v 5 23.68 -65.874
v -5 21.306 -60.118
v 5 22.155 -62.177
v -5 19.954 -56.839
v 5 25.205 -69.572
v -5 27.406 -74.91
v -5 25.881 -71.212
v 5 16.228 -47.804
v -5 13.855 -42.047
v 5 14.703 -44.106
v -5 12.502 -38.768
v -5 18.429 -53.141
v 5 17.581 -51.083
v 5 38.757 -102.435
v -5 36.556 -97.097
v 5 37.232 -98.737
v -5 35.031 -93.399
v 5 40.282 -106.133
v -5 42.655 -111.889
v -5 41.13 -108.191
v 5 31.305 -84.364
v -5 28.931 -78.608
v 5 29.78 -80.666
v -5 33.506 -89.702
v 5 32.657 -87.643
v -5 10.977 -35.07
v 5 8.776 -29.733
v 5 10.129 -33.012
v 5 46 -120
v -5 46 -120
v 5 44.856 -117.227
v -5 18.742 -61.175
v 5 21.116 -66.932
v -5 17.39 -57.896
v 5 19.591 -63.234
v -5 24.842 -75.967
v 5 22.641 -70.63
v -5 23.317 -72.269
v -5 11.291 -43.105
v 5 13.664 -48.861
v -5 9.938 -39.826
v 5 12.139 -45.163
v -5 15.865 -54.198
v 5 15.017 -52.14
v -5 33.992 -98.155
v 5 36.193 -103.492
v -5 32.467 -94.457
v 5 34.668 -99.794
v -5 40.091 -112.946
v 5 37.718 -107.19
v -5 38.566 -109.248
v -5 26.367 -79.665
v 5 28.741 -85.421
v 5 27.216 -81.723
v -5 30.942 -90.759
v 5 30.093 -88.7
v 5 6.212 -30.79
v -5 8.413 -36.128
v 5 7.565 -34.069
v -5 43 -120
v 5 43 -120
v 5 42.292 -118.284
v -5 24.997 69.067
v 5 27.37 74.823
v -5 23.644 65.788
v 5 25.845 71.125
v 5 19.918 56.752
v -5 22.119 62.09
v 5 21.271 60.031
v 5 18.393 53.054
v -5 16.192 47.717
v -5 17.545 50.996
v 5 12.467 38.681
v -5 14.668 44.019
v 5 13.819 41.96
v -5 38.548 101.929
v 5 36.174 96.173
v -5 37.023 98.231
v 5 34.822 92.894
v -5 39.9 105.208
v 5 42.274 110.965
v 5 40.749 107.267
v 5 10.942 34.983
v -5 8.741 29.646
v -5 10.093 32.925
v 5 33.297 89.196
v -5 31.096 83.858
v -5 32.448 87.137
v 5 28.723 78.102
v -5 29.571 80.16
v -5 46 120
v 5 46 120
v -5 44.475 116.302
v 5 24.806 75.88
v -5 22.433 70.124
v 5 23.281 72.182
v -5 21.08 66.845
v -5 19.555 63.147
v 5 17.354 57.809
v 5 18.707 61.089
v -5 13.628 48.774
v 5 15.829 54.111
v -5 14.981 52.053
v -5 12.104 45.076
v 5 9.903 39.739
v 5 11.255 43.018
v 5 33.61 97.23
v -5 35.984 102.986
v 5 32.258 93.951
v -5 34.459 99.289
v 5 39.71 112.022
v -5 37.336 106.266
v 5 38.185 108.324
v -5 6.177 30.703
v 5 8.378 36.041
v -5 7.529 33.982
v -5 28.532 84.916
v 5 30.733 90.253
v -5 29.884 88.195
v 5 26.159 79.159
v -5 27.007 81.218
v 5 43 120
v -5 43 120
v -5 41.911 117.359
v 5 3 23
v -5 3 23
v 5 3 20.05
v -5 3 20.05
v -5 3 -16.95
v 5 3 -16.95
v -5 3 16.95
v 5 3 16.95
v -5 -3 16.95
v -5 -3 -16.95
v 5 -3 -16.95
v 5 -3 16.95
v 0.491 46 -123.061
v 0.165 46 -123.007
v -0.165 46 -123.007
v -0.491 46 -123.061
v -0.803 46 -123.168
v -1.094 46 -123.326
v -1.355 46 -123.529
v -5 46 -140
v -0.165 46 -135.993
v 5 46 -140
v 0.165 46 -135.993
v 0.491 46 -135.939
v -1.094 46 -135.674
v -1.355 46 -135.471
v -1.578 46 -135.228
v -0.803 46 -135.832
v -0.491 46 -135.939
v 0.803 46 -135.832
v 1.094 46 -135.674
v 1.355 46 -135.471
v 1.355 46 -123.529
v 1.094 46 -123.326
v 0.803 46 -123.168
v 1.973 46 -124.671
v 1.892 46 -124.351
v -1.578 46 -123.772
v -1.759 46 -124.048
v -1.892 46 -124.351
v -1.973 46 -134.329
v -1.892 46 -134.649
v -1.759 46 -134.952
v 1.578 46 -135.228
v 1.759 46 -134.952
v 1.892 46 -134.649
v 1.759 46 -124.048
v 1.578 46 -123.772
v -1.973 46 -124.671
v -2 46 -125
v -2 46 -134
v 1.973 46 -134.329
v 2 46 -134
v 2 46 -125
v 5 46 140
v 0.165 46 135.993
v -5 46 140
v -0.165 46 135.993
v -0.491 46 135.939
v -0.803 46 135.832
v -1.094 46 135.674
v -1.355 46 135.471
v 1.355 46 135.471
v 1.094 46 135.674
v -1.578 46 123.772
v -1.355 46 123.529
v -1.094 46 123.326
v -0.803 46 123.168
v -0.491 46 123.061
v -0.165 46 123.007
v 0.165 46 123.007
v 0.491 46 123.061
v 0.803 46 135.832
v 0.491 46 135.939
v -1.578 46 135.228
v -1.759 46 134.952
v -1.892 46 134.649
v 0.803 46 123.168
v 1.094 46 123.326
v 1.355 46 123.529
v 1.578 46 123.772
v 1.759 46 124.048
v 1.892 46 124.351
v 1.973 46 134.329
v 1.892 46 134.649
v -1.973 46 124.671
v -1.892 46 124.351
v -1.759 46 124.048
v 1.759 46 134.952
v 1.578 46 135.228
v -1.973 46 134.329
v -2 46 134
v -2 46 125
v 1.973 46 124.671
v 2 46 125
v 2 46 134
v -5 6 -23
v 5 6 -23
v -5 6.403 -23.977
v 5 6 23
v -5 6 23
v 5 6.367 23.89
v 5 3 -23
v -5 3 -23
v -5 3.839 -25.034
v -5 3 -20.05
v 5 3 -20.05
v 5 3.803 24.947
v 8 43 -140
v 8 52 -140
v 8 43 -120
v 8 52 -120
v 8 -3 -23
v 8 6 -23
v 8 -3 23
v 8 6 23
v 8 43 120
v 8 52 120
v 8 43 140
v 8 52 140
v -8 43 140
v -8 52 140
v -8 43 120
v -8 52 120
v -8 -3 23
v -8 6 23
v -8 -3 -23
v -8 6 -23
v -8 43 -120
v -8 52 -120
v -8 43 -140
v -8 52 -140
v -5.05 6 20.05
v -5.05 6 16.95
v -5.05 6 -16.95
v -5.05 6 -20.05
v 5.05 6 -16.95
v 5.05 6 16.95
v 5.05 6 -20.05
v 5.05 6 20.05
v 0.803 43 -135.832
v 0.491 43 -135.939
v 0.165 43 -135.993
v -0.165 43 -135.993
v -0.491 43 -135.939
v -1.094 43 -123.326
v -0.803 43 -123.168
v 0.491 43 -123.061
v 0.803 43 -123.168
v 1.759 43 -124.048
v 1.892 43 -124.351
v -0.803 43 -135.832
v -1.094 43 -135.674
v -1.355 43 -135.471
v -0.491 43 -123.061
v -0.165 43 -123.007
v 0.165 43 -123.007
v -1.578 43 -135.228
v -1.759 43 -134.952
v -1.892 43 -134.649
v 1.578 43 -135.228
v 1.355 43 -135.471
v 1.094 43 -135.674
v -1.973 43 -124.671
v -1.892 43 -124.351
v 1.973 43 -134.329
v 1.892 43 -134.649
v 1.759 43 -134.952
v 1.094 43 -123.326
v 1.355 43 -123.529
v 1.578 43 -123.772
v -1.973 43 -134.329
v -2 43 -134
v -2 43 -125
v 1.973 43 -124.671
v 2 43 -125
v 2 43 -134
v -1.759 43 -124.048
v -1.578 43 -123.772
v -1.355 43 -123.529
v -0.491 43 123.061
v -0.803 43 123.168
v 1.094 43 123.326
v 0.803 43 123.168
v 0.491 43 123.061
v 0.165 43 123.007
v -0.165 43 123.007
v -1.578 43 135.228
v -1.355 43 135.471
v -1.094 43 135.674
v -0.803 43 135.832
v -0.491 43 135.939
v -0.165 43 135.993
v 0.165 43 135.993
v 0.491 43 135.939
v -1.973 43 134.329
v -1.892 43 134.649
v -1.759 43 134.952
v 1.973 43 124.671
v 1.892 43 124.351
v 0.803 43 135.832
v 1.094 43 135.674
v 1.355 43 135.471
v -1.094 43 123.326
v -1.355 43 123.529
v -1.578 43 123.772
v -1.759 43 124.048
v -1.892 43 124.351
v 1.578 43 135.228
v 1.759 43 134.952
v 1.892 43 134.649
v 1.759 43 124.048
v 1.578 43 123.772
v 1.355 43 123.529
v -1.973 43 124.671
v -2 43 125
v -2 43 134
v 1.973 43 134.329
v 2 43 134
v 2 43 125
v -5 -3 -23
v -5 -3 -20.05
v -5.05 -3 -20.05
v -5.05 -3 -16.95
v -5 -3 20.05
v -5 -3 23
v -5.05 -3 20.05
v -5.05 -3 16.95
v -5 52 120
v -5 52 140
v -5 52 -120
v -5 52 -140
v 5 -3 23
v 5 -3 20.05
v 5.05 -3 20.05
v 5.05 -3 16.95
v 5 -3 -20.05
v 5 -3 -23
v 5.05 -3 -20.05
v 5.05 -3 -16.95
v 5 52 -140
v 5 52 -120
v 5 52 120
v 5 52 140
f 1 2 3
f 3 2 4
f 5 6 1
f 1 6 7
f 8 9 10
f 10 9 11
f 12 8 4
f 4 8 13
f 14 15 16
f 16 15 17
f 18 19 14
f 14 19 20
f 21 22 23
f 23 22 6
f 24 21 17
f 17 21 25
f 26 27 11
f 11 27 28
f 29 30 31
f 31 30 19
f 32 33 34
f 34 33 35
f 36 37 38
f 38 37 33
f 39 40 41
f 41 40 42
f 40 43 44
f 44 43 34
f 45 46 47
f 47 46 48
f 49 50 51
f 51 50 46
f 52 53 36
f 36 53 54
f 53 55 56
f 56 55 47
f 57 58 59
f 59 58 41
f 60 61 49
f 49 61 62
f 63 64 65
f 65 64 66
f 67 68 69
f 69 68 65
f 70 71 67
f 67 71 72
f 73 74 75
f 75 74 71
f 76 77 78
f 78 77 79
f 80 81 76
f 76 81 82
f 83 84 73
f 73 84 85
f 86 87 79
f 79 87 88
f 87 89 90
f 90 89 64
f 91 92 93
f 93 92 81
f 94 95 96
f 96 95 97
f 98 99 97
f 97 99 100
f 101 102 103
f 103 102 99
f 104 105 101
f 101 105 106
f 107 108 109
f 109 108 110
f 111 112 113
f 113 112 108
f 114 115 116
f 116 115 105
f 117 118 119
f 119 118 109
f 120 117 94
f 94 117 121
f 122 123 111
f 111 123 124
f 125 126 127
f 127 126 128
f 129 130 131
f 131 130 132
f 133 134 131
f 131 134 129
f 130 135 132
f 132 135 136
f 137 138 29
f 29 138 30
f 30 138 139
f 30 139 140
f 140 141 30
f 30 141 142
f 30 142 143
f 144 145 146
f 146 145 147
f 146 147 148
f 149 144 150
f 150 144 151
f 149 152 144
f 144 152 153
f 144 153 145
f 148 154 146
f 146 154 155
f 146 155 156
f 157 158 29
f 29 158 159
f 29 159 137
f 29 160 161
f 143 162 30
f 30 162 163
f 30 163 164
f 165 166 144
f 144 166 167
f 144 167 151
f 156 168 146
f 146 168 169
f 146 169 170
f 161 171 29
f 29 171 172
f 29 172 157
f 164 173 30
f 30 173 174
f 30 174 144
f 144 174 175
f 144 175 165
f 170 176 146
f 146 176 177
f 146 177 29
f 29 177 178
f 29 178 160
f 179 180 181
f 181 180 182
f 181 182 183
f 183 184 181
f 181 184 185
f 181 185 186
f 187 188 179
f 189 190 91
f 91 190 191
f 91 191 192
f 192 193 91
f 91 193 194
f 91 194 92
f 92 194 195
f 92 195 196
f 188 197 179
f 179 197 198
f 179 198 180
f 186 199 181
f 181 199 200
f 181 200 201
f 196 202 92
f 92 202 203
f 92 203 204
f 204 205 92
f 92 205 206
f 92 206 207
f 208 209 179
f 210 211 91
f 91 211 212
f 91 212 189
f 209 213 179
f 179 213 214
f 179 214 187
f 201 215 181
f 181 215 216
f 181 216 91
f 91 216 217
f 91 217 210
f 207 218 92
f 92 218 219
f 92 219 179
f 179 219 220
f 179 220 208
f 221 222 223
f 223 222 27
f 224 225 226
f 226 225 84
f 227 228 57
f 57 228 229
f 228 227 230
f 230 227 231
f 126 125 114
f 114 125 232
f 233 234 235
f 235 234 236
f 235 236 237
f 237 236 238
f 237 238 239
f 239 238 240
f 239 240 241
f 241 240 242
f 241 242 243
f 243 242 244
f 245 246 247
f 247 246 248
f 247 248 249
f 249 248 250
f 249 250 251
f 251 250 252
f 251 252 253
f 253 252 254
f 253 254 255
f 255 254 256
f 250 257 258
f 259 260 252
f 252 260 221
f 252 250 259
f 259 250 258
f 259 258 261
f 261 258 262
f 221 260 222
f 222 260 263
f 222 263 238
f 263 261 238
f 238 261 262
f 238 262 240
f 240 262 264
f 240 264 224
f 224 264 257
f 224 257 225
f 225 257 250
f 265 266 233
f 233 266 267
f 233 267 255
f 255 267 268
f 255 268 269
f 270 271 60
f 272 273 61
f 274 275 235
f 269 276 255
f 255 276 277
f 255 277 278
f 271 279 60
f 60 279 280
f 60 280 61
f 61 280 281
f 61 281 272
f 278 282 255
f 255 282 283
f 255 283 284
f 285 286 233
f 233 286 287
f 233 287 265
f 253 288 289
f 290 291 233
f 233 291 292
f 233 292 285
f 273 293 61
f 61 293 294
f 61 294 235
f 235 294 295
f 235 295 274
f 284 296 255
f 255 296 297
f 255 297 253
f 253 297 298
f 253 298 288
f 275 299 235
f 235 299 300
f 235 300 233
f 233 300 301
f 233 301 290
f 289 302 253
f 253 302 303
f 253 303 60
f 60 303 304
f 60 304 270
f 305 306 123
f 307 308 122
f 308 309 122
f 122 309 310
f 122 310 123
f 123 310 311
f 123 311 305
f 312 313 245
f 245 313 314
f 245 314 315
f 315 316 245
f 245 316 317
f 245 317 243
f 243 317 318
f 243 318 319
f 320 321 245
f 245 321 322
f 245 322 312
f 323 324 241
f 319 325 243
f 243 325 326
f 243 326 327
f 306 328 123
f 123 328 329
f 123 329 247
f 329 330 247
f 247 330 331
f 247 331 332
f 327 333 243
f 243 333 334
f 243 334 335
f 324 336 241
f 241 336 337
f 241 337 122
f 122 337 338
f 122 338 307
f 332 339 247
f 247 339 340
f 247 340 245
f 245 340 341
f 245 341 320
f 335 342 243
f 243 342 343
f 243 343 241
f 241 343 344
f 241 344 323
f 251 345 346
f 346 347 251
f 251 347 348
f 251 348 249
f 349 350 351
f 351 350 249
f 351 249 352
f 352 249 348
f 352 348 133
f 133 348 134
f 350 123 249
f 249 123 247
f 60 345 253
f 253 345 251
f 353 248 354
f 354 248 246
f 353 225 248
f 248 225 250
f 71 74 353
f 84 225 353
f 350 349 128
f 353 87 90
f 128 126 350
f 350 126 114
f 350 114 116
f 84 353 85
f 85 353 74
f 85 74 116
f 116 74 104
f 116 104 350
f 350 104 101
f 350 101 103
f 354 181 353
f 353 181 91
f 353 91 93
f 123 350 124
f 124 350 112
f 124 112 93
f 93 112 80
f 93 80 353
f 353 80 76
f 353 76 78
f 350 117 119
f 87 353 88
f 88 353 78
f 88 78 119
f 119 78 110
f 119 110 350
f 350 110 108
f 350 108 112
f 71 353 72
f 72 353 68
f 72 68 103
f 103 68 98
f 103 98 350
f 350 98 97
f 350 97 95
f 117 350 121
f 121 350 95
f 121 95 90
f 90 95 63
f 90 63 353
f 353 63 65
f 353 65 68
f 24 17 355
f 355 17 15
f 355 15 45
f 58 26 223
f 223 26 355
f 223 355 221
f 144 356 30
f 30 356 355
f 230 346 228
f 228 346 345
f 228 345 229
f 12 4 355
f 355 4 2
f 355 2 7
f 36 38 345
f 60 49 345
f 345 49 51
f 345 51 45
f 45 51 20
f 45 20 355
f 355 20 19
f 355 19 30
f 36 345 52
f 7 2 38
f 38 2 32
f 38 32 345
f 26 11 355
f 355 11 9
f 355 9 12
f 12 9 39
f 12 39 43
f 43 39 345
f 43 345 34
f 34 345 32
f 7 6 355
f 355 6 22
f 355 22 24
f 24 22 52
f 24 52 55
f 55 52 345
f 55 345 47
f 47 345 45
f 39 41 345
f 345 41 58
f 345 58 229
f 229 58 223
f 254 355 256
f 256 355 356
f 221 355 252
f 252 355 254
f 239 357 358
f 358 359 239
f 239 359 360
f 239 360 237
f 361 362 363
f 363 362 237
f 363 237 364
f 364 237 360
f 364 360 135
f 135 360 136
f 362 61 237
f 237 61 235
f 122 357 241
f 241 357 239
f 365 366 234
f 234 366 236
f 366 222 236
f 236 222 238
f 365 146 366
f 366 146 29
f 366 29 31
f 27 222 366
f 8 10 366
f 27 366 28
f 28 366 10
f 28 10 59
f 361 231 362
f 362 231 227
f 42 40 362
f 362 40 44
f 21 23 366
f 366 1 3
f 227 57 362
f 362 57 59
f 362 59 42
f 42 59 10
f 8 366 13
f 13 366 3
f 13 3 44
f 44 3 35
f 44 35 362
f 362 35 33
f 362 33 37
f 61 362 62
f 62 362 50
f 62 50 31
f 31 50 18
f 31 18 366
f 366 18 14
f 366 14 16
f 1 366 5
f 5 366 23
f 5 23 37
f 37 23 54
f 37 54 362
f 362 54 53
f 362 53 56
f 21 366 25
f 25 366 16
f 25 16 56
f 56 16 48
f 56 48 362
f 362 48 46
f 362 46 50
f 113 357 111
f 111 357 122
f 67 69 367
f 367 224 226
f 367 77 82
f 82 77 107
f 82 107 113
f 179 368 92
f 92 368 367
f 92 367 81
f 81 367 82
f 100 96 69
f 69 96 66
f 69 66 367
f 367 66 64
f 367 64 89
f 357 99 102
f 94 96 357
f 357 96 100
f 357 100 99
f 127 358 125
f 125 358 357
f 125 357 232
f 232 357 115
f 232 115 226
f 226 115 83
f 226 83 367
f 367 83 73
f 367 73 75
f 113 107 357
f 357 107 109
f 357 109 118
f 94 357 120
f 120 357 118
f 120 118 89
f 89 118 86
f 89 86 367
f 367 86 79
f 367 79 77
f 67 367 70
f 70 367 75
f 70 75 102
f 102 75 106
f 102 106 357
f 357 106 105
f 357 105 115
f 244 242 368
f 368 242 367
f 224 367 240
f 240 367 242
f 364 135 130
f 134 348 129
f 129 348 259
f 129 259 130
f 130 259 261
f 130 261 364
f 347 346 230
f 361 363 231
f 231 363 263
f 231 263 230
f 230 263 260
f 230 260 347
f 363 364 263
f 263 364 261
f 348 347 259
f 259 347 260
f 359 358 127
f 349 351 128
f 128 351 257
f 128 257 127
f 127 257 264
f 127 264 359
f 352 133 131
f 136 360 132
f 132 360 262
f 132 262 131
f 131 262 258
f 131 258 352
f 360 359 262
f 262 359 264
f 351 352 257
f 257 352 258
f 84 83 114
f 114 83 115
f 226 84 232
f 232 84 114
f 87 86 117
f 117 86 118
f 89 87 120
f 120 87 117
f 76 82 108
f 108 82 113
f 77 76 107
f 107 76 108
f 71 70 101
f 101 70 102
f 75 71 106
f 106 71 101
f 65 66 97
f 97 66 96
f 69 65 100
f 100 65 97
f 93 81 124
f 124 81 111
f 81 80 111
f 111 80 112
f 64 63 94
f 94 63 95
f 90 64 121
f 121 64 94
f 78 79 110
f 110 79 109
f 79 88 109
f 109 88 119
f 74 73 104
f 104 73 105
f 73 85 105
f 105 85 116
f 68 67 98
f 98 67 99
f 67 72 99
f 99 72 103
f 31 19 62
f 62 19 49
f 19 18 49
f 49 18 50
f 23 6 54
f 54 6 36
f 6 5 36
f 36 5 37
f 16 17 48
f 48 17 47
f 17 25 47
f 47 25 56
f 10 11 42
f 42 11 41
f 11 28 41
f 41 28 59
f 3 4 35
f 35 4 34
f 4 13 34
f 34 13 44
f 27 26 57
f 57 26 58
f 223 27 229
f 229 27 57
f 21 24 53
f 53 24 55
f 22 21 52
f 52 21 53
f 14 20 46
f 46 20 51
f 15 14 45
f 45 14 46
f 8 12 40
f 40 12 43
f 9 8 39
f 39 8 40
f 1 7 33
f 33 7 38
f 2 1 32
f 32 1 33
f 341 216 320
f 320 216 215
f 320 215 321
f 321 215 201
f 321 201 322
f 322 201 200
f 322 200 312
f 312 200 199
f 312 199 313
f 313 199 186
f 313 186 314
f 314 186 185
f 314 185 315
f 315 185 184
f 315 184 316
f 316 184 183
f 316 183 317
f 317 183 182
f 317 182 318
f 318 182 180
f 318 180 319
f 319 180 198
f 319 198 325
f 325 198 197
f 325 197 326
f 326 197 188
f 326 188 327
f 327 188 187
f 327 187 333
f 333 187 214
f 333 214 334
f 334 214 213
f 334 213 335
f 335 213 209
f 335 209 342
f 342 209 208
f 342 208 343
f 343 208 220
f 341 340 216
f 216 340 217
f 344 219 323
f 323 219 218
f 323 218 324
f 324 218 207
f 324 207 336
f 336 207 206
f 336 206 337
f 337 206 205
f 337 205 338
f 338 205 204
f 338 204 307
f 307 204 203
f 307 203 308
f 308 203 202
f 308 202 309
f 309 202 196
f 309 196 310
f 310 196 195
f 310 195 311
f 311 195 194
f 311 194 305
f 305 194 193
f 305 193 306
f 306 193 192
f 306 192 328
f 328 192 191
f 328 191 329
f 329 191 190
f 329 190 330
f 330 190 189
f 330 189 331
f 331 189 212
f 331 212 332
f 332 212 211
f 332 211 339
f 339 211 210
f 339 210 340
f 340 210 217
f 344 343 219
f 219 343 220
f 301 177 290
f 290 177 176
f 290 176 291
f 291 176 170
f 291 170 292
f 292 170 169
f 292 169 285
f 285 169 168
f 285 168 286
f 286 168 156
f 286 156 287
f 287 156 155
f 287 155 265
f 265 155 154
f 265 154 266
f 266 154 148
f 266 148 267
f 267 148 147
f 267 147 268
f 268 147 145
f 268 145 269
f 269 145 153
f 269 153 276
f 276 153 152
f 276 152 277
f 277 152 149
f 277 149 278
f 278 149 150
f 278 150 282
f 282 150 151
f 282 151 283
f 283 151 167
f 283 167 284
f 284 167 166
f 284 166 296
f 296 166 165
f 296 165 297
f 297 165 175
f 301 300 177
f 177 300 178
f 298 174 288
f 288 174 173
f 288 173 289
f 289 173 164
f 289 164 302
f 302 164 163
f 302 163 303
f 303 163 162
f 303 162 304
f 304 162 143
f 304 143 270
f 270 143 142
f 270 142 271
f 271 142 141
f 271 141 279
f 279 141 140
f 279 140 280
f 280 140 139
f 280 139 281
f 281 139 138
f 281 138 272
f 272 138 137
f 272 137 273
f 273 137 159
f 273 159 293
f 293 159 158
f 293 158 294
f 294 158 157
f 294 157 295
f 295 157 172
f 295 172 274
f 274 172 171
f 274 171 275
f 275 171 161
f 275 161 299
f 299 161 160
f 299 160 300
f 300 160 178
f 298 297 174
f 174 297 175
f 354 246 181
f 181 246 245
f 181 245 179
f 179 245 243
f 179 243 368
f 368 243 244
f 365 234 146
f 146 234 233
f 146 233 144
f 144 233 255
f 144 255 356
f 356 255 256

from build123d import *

# Parameters (mm, degrees)
BASESKETCH_W             = 16
BASESKETCH_H             = 300
BASE_DEPTH               = 46
SHAPESKETCH_OUTSIDE_W    = 362.786
SHAPESKETCH_OUTSIDE_H    = 108.786
SHAPE_DEPTH              = 17
SUPPORTR_DEPTH           = 3
SUPPORTL_START           = -16
SUPPORTL_DEPTH           = 3
CONNECTIONCENTERSKETCH_W = 10.1
CONNECTIONCENTERSKETCH_H = 3.1
CONNECTIONCENTER_DEPTH   = 10
WEIGHTL_DEPTH            = 57.736422329
WEIGHTR_DEPTH            = 57.736422329
CONNECTIONEND_DEPTH      = 7
CONNECTIONEND_DEPTH_BACK = 50
SHORTNERSKETCH_W         = 17.734474479
SHORTNERSKETCH_H         = 84.123631353
SHORTNERSKETCH_W_2       = 27.514011897
SHORTNERSKETCH_H_2       = 94.21863772
CUT_EXTRUDE1_DEPTH       = 17


with BuildPart() as part:
    # BaseSketch → Base (new body)
    with BuildSketch(Plane(origin=(0, 0, 0), x_dir=(1, 0, 0), z_dir=(0, 1, 0))):
        Rectangle(BASESKETCH_W, BASESKETCH_H)
    extrude(amount=BASE_DEPTH)

    # ShapeSketch outside → Shape (cut, through all)
    with BuildSketch(Plane(origin=(8, 0, 0), x_dir=(0, 0, -1), z_dir=(1, 0, 0))):
        with Locations((0, 23)):
            Rectangle(SHAPESKETCH_OUTSIDE_W, SHAPESKETCH_OUTSIDE_H)
        Polygon((-23, 3), (23, 3), (120, 43), (150, 43), (150, 46), (120, 46), (23, 6), (-23, 6), (-120, 46), (-150, 46), (-150, 43), (-120, 43), align=None, mode=Mode.SUBTRACT)
    extrude(amount=-SHAPE_DEPTH, mode=Mode.SUBTRACT)

    # SupportSketch → SupportR (add)
    with BuildSketch(Plane.ZY.offset(8)):
        Polygon((-150, 52), (-150, 43), (-120, 43), (-23, -3), (23, -3), (120, 43), (150, 43), (150, 52), (120, 52), (23, 6), (-23, 6), (-120, 52), align=None)
    extrude(amount=-SUPPORTR_DEPTH)

    # SupportSketch<3> → SupportL (add)
    with BuildSketch(Plane.ZY.offset(8).offset(SUPPORTL_START)):
        Polygon((-150, 52), (-150, 43), (-120, 43), (-23, -3), (23, -3), (120, 43), (150, 43), (150, 52), (120, 52), (23, 6), (-23, 6), (-120, 52), align=None)
    extrude(amount=SUPPORTL_DEPTH)

    # ConnectionCenterSketch → ConnectionCenter (cut, through all)
    with BuildSketch(Plane(origin=(0, 6, 0), x_dir=(1, 0, 0), z_dir=(0, 1, 0))):
        with Locations((0, -18.5)):
            Rectangle(CONNECTIONCENTERSKETCH_W, CONNECTIONCENTERSKETCH_H)
        with Locations((0, 18.5)):
            Rectangle(CONNECTIONCENTERSKETCH_W, CONNECTIONCENTERSKETCH_H)
    extrude(amount=-CONNECTIONCENTER_DEPTH, mode=Mode.SUBTRACT)

    # WeightLSketch → WeightL (cut, through all)
    with BuildSketch(Plane(origin=(0, -2.97810882, 1.228086111), x_dir=(1, 0, 0), z_dir=(0, 0.924480592, -0.38122911))):
        Polygon((-5, -124.474210145), (-5, -112.474210145), (5, -118.700707453), align=None)
        Polygon((5, -114.700707453), (5, -102.700707453), (-5, -108.927204761), align=None)
        Polygon((-5, -104.927204761), (-5, -92.927204761), (5, -99.153702069), align=None)
        Polygon((5, -95.153702069), (5, -83.153702069), (-5, -89.380199377), align=None)
        Polygon((5, -79.606696685), (-5, -85.380199377), (-5, -73.380199377), align=None)
        Polygon((5, -75.606696685), (5, -63.606696685), (-5, -69.833193994), align=None)
        Polygon((-5, -46.28618861), (-5, -34.28618861), (5, -40.512685918), align=None)
        Polygon((-5, -65.833193994), (-5, -53.833193994), (5, -60.059691302), align=None)
        Polygon((5, -56.059691302), (5, -44.059691302), (-5, -50.28618861), align=None)
        Polygon((5, -36.512685918), (5, -24.512685918), (-5, -30.739183226), align=None)
    extrude(amount=-WEIGHTL_DEPTH, mode=Mode.SUBTRACT)

    # WeightRSketch → WeightR (cut, through all)
    with BuildSketch(Plane(origin=(0, -2.97810882, -1.228086111), x_dir=(1, 0, 0), z_dir=(0, 0.924480592, 0.38122911))):
        Polygon((5, 125.474210145), (5, 113.474210145), (-5, 119.700707453), align=None)
        Polygon((-5, 115.700707453), (-5, 103.700707453), (5, 109.474210145), align=None)
        Polygon((5, 105.474210145), (5, 93.474210145), (-5, 99.700707453), align=None)
        Polygon((-5, 95.700707453), (-5, 83.700707453), (5, 89.927204761), align=None)
        Polygon((5, 85.927204761), (5, 73.927204761), (-5, 79.700707453), align=None)
        Polygon((-5, 75.700707453), (-5, 63.700707453), (5, 69.927204761), align=None)
        Polygon((5, 65.927204761), (5, 53.927204761), (-5, 60.153702069), align=None)
        Polygon((-5, 56.153702069), (-5, 44.153702069), (5, 50.380199377), align=None)
        Polygon((5, 46.380199377), (5, 34.380199377), (-5, 40.606696685), align=None)
        Polygon((-5, 36.606696685), (-5, 24.606696685), (5, 30.833193994), align=None)
    extrude(amount=-WEIGHTR_DEPTH, mode=Mode.SUBTRACT)

    # ConnectionEndSketch → ConnectionEnd (cut, two sides)
    with BuildSketch(Plane(origin=(0, 46, 0), x_dir=(1, 0, 0), z_dir=(0, 1, 0))) as connectionend_sk:
        with BuildLine():
            Line((2, 134), (2, 125))
            ThreePointArc((2, 125), (0, 123), (-2, 125))
            Line((-2, 125), (-2, 134))
            ThreePointArc((-2, 134), (0, 136), (2, 134))
        make_face()
        with BuildLine():
            Line((-2, -134), (-2, -125))
            ThreePointArc((-2, -125), (0, -123), (2, -125))
            Line((2, -125), (2, -134))
            ThreePointArc((2, -134), (0, -136), (-2, -134))
        make_face()
    extrude(amount=CONNECTIONEND_DEPTH, mode=Mode.SUBTRACT)
    extrude(connectionend_sk.sketch, amount=-CONNECTIONEND_DEPTH_BACK, mode=Mode.SUBTRACT)

    # ShortnerSketch → Cut-Extrude1 (cut, through all)
    with BuildSketch(Plane.ZY.offset(8)):
        with Locations((-148.86723724, 42.061815677)):
            Rectangle(SHORTNERSKETCH_W, SHORTNERSKETCH_H)
        with Locations((153.757005949, 47.10931886)):
            Rectangle(SHORTNERSKETCH_W_2, SHORTNERSKETCH_H_2)
    extrude(amount=-CUT_EXTRUDE1_DEPTH, mode=Mode.SUBTRACT)


solid = part.part
